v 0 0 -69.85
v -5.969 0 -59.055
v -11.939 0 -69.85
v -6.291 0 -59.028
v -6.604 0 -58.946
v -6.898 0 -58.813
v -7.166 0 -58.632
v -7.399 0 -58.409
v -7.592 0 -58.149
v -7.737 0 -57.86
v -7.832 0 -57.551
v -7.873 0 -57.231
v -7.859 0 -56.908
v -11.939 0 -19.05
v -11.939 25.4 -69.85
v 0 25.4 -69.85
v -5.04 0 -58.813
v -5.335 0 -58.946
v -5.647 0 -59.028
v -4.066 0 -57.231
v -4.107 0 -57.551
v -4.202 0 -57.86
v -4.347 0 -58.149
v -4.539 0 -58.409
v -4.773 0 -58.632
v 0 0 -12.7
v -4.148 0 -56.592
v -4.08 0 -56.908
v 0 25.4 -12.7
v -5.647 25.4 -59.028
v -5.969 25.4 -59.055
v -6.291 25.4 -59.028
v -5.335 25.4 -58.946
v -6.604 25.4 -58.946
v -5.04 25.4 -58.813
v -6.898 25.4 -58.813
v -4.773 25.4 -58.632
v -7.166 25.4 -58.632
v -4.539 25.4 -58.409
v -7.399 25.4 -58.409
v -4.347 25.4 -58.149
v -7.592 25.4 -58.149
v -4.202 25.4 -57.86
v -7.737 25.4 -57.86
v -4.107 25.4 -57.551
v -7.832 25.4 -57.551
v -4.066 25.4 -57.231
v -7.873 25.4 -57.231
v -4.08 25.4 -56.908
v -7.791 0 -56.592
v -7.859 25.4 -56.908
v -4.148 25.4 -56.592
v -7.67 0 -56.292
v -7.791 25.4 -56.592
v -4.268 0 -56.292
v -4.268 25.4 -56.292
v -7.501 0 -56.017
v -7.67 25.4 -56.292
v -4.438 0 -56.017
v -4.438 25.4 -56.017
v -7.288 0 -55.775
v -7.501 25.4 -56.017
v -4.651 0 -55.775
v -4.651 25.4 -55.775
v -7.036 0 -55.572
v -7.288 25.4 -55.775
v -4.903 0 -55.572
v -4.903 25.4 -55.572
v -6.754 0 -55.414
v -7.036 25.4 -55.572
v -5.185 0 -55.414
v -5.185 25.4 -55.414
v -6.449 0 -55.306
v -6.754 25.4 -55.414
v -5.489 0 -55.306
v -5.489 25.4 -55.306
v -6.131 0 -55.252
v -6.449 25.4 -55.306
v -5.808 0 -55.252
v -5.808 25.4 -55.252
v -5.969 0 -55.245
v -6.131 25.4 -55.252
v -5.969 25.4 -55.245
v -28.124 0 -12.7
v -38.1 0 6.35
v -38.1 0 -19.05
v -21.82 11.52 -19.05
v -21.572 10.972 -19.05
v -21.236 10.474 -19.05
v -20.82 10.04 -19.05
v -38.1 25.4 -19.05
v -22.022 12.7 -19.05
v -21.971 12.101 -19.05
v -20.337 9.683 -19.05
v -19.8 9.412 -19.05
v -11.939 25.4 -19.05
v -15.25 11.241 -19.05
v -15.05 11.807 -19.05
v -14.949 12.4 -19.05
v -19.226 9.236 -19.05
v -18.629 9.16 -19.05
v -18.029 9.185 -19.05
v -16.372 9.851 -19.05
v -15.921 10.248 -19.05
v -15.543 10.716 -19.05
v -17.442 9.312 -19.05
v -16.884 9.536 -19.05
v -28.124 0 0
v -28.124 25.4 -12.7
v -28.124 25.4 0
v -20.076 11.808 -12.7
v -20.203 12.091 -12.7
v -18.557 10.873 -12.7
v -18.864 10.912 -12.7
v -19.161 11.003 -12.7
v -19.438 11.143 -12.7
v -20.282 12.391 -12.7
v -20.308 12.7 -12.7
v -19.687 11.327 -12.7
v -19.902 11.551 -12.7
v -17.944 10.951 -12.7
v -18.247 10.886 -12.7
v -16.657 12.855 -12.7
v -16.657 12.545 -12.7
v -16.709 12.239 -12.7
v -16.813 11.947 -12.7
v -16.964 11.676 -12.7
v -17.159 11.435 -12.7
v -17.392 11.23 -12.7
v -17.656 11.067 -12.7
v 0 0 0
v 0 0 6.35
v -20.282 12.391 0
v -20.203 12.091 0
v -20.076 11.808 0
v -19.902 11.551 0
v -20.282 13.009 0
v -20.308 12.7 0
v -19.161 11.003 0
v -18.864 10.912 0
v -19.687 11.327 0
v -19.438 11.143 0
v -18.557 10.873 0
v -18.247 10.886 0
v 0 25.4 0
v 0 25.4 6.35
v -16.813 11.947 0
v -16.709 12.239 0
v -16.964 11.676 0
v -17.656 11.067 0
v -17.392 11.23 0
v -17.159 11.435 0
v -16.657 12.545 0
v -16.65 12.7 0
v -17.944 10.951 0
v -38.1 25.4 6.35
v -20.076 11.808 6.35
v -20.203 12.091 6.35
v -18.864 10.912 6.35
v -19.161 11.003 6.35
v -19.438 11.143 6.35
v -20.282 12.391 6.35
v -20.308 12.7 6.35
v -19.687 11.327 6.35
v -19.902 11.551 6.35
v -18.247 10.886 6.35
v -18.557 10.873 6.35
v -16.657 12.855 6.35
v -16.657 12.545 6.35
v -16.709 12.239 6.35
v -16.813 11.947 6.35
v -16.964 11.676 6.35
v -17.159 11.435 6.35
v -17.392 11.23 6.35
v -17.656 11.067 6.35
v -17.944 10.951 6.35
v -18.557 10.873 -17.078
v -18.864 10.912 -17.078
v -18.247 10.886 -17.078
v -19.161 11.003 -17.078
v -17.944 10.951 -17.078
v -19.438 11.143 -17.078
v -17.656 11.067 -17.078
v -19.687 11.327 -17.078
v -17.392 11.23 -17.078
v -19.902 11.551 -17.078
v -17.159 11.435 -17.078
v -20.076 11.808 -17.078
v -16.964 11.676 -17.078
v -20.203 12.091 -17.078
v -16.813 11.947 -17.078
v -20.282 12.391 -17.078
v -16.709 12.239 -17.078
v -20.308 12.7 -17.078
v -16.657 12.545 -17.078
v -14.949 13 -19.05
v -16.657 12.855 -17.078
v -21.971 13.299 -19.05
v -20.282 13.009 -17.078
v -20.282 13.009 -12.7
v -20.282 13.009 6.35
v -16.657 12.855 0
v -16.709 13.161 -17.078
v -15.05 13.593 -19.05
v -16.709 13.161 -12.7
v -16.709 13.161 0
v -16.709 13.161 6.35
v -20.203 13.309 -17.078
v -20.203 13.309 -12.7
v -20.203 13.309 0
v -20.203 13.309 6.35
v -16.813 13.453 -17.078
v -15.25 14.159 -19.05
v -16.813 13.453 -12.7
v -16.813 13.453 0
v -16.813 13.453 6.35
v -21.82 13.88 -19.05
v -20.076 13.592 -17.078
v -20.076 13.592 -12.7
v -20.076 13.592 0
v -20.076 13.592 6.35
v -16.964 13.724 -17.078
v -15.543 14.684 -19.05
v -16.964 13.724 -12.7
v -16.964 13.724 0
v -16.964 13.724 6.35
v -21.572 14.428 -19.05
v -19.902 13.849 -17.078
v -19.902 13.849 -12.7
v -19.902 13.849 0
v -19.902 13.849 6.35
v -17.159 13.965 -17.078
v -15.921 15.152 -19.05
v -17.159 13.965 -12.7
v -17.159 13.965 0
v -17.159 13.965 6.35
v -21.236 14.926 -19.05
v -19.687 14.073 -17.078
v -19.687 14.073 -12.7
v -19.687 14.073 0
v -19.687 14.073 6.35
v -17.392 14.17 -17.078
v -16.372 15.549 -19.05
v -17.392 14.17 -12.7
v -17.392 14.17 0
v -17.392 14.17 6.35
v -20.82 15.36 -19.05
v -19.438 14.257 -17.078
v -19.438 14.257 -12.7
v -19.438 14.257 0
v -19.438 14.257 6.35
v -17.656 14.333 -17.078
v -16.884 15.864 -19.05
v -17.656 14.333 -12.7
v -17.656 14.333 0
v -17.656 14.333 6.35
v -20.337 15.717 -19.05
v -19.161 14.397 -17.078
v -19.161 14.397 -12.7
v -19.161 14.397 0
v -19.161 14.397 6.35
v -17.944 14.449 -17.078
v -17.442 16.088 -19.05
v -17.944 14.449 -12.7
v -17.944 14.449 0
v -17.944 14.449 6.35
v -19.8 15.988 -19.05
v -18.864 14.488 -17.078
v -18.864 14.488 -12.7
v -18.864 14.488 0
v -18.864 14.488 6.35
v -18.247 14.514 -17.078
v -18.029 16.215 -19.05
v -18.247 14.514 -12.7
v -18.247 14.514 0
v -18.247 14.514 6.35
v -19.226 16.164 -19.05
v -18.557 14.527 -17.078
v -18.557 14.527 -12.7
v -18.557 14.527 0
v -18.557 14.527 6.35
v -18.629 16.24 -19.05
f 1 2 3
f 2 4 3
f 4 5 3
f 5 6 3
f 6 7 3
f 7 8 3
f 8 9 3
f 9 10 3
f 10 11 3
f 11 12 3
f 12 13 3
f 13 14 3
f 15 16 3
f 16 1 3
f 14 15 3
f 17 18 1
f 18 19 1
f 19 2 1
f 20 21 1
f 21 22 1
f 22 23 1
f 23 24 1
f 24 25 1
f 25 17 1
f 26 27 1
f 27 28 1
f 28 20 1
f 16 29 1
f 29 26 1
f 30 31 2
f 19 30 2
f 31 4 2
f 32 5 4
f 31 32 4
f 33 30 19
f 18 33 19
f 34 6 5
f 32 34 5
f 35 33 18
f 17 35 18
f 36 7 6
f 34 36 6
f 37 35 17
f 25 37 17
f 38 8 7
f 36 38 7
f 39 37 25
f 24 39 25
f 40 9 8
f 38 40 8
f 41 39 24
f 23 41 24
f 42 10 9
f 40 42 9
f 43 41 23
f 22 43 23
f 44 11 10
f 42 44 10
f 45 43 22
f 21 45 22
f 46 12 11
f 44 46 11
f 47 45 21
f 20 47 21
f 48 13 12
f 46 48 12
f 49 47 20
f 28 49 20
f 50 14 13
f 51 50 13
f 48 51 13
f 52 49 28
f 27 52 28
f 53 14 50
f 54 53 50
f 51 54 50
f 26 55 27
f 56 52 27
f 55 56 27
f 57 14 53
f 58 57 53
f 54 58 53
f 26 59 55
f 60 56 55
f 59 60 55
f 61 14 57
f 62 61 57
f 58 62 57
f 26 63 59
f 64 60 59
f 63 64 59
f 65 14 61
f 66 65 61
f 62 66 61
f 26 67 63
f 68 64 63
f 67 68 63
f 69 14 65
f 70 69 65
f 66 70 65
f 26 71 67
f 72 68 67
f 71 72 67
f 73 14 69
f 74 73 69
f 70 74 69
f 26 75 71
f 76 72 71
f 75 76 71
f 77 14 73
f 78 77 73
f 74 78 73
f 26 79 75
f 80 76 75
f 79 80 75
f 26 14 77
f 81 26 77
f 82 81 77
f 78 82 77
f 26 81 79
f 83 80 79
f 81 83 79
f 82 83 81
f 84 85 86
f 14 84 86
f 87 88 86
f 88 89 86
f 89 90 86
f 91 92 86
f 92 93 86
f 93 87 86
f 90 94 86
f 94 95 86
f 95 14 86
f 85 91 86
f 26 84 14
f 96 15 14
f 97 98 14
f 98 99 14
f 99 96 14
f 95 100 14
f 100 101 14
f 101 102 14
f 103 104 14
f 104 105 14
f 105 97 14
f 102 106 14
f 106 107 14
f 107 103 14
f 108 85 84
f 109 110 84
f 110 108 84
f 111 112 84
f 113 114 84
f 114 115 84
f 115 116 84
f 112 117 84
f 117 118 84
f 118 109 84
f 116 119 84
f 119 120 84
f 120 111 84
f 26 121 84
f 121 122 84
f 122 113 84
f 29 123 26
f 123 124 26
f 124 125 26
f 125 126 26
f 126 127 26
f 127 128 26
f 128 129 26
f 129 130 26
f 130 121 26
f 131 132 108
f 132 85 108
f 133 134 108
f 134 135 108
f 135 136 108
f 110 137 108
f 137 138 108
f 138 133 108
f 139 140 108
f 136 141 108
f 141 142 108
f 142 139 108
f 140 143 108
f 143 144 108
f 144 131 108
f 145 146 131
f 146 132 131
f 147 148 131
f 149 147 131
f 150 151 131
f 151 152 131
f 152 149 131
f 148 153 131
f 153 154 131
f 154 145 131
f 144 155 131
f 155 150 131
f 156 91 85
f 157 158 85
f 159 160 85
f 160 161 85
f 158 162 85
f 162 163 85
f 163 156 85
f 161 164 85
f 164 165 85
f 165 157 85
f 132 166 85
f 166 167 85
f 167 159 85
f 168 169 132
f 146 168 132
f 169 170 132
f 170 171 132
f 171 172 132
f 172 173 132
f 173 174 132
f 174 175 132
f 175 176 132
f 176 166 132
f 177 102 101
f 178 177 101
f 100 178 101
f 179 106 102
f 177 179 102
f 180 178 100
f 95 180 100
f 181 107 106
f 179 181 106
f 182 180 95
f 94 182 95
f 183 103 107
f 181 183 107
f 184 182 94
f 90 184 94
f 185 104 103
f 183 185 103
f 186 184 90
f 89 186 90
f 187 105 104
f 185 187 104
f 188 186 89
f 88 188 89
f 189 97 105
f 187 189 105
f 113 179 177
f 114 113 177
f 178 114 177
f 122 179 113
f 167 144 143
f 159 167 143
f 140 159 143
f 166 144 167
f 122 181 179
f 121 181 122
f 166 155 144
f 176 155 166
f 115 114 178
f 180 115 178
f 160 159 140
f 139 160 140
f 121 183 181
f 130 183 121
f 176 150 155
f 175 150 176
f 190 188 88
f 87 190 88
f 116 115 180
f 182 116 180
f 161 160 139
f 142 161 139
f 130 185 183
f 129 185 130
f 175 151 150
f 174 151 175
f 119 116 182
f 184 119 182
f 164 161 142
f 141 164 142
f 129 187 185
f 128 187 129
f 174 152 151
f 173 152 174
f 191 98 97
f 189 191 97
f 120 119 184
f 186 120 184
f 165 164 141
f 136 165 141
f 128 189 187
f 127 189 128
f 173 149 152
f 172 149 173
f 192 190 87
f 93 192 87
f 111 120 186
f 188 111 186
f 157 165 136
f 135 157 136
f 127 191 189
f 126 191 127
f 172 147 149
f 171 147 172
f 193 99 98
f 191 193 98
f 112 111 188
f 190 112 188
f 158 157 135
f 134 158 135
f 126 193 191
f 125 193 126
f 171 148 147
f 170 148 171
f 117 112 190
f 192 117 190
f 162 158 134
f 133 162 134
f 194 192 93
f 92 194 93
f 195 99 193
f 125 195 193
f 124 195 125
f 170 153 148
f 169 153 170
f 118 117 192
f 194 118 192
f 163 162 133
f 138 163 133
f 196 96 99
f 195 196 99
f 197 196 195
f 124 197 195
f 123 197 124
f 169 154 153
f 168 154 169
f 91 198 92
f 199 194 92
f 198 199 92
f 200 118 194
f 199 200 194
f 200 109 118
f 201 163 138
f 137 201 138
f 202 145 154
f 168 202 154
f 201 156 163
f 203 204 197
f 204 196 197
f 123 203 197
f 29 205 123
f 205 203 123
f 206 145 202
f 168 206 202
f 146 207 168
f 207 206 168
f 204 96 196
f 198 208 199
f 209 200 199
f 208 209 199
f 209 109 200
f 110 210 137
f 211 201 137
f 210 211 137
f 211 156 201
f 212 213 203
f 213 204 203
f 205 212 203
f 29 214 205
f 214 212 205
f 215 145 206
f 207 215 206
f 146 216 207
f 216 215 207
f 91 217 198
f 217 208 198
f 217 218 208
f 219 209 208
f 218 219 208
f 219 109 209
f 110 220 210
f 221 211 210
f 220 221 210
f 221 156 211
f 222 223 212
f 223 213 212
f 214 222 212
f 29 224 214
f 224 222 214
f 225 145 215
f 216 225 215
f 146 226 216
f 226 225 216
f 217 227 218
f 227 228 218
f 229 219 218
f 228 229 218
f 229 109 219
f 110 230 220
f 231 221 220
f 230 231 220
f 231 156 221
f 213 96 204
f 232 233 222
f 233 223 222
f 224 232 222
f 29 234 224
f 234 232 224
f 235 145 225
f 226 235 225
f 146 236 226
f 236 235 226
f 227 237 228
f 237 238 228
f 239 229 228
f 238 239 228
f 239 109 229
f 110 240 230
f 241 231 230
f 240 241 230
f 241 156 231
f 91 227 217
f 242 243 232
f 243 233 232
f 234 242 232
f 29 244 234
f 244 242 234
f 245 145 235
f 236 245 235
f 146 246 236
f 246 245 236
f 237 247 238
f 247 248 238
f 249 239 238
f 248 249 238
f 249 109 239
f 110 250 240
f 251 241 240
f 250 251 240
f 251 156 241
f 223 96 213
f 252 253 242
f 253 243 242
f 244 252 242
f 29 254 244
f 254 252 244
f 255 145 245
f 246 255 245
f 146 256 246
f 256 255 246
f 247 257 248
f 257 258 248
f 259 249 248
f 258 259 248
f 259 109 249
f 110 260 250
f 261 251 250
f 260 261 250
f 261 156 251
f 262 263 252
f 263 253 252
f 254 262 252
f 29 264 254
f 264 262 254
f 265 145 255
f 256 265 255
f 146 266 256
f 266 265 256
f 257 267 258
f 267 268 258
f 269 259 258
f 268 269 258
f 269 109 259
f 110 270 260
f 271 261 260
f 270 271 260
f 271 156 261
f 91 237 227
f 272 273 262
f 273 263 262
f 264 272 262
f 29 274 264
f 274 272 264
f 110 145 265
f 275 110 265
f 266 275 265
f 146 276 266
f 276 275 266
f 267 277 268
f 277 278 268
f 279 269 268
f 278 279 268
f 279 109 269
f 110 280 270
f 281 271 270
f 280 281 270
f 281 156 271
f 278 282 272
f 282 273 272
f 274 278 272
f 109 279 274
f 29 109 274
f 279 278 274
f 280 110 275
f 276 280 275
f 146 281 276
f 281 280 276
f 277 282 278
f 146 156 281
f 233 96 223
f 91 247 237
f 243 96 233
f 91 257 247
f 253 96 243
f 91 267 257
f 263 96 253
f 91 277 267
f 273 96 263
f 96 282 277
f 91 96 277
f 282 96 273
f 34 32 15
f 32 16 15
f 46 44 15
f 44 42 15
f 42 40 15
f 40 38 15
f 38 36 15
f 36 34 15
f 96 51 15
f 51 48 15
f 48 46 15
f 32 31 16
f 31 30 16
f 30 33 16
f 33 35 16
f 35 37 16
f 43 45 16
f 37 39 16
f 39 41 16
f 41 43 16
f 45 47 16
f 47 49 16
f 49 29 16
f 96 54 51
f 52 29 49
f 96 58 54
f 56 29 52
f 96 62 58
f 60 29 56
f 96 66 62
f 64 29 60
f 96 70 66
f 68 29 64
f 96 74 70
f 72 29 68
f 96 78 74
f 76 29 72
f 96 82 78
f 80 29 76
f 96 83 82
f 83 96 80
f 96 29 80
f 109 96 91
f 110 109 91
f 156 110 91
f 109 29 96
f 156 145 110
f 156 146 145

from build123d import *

# Parameters (mm, degrees)
SKETCH1_R                                      = 1.905
BOSS_EXTRUDE2_DEPTH                            = 25.4
CSK_FOR_6_OVAL_HEAD_MACHINE_SCREW1_D           = 3.6576
CSK_FOR_6_OVAL_HEAD_MACHINE_SCREW1_CSINK_D     = 7.0866
CSK_FOR_6_OVAL_HEAD_MACHINE_SCREW1_CSINK_ANGLE = 82


with BuildPart() as part:
    # Sketch1 → Boss-Extrude2 (new body)
    with BuildSketch(Plane(origin=(0, 0, 0), x_dir=(1, 0, 0), z_dir=(0, 1, 0))):
        Polygon((0, 0), (-28.124290221, 0), (-28.124290221, 12.7), (0, 12.7), (0, 19.05), (0, 69.85), (-11.938801262, 69.85), (-11.938801262, 19.05), (-38.1, 19.05), (-38.1, 7.031072555), (-38.1, -6.35), (0, -6.35), align=None)
        with Locations(Location((-5.969400631, 57.15, 0), (0, 0, 270))):
            Circle(SKETCH1_R, mode=Mode.SUBTRACT)
    extrude(amount=BOSS_EXTRUDE2_DEPTH)

    # CSK for #6 Oval Head Machine Screw1 (through all)
    with Locations(Plane(origin=(0, 0, -19.05), x_dir=(-1, 0, 0), z_dir=(0, 0, -1))):
        with Locations((18.479100946, 12.7)):
            CounterSinkHole(CSK_FOR_6_OVAL_HEAD_MACHINE_SCREW1_D / 2, CSK_FOR_6_OVAL_HEAD_MACHINE_SCREW1_CSINK_D / 2, counter_sink_angle=CSK_FOR_6_OVAL_HEAD_MACHINE_SCREW1_CSINK_ANGLE)


solid = part.part
